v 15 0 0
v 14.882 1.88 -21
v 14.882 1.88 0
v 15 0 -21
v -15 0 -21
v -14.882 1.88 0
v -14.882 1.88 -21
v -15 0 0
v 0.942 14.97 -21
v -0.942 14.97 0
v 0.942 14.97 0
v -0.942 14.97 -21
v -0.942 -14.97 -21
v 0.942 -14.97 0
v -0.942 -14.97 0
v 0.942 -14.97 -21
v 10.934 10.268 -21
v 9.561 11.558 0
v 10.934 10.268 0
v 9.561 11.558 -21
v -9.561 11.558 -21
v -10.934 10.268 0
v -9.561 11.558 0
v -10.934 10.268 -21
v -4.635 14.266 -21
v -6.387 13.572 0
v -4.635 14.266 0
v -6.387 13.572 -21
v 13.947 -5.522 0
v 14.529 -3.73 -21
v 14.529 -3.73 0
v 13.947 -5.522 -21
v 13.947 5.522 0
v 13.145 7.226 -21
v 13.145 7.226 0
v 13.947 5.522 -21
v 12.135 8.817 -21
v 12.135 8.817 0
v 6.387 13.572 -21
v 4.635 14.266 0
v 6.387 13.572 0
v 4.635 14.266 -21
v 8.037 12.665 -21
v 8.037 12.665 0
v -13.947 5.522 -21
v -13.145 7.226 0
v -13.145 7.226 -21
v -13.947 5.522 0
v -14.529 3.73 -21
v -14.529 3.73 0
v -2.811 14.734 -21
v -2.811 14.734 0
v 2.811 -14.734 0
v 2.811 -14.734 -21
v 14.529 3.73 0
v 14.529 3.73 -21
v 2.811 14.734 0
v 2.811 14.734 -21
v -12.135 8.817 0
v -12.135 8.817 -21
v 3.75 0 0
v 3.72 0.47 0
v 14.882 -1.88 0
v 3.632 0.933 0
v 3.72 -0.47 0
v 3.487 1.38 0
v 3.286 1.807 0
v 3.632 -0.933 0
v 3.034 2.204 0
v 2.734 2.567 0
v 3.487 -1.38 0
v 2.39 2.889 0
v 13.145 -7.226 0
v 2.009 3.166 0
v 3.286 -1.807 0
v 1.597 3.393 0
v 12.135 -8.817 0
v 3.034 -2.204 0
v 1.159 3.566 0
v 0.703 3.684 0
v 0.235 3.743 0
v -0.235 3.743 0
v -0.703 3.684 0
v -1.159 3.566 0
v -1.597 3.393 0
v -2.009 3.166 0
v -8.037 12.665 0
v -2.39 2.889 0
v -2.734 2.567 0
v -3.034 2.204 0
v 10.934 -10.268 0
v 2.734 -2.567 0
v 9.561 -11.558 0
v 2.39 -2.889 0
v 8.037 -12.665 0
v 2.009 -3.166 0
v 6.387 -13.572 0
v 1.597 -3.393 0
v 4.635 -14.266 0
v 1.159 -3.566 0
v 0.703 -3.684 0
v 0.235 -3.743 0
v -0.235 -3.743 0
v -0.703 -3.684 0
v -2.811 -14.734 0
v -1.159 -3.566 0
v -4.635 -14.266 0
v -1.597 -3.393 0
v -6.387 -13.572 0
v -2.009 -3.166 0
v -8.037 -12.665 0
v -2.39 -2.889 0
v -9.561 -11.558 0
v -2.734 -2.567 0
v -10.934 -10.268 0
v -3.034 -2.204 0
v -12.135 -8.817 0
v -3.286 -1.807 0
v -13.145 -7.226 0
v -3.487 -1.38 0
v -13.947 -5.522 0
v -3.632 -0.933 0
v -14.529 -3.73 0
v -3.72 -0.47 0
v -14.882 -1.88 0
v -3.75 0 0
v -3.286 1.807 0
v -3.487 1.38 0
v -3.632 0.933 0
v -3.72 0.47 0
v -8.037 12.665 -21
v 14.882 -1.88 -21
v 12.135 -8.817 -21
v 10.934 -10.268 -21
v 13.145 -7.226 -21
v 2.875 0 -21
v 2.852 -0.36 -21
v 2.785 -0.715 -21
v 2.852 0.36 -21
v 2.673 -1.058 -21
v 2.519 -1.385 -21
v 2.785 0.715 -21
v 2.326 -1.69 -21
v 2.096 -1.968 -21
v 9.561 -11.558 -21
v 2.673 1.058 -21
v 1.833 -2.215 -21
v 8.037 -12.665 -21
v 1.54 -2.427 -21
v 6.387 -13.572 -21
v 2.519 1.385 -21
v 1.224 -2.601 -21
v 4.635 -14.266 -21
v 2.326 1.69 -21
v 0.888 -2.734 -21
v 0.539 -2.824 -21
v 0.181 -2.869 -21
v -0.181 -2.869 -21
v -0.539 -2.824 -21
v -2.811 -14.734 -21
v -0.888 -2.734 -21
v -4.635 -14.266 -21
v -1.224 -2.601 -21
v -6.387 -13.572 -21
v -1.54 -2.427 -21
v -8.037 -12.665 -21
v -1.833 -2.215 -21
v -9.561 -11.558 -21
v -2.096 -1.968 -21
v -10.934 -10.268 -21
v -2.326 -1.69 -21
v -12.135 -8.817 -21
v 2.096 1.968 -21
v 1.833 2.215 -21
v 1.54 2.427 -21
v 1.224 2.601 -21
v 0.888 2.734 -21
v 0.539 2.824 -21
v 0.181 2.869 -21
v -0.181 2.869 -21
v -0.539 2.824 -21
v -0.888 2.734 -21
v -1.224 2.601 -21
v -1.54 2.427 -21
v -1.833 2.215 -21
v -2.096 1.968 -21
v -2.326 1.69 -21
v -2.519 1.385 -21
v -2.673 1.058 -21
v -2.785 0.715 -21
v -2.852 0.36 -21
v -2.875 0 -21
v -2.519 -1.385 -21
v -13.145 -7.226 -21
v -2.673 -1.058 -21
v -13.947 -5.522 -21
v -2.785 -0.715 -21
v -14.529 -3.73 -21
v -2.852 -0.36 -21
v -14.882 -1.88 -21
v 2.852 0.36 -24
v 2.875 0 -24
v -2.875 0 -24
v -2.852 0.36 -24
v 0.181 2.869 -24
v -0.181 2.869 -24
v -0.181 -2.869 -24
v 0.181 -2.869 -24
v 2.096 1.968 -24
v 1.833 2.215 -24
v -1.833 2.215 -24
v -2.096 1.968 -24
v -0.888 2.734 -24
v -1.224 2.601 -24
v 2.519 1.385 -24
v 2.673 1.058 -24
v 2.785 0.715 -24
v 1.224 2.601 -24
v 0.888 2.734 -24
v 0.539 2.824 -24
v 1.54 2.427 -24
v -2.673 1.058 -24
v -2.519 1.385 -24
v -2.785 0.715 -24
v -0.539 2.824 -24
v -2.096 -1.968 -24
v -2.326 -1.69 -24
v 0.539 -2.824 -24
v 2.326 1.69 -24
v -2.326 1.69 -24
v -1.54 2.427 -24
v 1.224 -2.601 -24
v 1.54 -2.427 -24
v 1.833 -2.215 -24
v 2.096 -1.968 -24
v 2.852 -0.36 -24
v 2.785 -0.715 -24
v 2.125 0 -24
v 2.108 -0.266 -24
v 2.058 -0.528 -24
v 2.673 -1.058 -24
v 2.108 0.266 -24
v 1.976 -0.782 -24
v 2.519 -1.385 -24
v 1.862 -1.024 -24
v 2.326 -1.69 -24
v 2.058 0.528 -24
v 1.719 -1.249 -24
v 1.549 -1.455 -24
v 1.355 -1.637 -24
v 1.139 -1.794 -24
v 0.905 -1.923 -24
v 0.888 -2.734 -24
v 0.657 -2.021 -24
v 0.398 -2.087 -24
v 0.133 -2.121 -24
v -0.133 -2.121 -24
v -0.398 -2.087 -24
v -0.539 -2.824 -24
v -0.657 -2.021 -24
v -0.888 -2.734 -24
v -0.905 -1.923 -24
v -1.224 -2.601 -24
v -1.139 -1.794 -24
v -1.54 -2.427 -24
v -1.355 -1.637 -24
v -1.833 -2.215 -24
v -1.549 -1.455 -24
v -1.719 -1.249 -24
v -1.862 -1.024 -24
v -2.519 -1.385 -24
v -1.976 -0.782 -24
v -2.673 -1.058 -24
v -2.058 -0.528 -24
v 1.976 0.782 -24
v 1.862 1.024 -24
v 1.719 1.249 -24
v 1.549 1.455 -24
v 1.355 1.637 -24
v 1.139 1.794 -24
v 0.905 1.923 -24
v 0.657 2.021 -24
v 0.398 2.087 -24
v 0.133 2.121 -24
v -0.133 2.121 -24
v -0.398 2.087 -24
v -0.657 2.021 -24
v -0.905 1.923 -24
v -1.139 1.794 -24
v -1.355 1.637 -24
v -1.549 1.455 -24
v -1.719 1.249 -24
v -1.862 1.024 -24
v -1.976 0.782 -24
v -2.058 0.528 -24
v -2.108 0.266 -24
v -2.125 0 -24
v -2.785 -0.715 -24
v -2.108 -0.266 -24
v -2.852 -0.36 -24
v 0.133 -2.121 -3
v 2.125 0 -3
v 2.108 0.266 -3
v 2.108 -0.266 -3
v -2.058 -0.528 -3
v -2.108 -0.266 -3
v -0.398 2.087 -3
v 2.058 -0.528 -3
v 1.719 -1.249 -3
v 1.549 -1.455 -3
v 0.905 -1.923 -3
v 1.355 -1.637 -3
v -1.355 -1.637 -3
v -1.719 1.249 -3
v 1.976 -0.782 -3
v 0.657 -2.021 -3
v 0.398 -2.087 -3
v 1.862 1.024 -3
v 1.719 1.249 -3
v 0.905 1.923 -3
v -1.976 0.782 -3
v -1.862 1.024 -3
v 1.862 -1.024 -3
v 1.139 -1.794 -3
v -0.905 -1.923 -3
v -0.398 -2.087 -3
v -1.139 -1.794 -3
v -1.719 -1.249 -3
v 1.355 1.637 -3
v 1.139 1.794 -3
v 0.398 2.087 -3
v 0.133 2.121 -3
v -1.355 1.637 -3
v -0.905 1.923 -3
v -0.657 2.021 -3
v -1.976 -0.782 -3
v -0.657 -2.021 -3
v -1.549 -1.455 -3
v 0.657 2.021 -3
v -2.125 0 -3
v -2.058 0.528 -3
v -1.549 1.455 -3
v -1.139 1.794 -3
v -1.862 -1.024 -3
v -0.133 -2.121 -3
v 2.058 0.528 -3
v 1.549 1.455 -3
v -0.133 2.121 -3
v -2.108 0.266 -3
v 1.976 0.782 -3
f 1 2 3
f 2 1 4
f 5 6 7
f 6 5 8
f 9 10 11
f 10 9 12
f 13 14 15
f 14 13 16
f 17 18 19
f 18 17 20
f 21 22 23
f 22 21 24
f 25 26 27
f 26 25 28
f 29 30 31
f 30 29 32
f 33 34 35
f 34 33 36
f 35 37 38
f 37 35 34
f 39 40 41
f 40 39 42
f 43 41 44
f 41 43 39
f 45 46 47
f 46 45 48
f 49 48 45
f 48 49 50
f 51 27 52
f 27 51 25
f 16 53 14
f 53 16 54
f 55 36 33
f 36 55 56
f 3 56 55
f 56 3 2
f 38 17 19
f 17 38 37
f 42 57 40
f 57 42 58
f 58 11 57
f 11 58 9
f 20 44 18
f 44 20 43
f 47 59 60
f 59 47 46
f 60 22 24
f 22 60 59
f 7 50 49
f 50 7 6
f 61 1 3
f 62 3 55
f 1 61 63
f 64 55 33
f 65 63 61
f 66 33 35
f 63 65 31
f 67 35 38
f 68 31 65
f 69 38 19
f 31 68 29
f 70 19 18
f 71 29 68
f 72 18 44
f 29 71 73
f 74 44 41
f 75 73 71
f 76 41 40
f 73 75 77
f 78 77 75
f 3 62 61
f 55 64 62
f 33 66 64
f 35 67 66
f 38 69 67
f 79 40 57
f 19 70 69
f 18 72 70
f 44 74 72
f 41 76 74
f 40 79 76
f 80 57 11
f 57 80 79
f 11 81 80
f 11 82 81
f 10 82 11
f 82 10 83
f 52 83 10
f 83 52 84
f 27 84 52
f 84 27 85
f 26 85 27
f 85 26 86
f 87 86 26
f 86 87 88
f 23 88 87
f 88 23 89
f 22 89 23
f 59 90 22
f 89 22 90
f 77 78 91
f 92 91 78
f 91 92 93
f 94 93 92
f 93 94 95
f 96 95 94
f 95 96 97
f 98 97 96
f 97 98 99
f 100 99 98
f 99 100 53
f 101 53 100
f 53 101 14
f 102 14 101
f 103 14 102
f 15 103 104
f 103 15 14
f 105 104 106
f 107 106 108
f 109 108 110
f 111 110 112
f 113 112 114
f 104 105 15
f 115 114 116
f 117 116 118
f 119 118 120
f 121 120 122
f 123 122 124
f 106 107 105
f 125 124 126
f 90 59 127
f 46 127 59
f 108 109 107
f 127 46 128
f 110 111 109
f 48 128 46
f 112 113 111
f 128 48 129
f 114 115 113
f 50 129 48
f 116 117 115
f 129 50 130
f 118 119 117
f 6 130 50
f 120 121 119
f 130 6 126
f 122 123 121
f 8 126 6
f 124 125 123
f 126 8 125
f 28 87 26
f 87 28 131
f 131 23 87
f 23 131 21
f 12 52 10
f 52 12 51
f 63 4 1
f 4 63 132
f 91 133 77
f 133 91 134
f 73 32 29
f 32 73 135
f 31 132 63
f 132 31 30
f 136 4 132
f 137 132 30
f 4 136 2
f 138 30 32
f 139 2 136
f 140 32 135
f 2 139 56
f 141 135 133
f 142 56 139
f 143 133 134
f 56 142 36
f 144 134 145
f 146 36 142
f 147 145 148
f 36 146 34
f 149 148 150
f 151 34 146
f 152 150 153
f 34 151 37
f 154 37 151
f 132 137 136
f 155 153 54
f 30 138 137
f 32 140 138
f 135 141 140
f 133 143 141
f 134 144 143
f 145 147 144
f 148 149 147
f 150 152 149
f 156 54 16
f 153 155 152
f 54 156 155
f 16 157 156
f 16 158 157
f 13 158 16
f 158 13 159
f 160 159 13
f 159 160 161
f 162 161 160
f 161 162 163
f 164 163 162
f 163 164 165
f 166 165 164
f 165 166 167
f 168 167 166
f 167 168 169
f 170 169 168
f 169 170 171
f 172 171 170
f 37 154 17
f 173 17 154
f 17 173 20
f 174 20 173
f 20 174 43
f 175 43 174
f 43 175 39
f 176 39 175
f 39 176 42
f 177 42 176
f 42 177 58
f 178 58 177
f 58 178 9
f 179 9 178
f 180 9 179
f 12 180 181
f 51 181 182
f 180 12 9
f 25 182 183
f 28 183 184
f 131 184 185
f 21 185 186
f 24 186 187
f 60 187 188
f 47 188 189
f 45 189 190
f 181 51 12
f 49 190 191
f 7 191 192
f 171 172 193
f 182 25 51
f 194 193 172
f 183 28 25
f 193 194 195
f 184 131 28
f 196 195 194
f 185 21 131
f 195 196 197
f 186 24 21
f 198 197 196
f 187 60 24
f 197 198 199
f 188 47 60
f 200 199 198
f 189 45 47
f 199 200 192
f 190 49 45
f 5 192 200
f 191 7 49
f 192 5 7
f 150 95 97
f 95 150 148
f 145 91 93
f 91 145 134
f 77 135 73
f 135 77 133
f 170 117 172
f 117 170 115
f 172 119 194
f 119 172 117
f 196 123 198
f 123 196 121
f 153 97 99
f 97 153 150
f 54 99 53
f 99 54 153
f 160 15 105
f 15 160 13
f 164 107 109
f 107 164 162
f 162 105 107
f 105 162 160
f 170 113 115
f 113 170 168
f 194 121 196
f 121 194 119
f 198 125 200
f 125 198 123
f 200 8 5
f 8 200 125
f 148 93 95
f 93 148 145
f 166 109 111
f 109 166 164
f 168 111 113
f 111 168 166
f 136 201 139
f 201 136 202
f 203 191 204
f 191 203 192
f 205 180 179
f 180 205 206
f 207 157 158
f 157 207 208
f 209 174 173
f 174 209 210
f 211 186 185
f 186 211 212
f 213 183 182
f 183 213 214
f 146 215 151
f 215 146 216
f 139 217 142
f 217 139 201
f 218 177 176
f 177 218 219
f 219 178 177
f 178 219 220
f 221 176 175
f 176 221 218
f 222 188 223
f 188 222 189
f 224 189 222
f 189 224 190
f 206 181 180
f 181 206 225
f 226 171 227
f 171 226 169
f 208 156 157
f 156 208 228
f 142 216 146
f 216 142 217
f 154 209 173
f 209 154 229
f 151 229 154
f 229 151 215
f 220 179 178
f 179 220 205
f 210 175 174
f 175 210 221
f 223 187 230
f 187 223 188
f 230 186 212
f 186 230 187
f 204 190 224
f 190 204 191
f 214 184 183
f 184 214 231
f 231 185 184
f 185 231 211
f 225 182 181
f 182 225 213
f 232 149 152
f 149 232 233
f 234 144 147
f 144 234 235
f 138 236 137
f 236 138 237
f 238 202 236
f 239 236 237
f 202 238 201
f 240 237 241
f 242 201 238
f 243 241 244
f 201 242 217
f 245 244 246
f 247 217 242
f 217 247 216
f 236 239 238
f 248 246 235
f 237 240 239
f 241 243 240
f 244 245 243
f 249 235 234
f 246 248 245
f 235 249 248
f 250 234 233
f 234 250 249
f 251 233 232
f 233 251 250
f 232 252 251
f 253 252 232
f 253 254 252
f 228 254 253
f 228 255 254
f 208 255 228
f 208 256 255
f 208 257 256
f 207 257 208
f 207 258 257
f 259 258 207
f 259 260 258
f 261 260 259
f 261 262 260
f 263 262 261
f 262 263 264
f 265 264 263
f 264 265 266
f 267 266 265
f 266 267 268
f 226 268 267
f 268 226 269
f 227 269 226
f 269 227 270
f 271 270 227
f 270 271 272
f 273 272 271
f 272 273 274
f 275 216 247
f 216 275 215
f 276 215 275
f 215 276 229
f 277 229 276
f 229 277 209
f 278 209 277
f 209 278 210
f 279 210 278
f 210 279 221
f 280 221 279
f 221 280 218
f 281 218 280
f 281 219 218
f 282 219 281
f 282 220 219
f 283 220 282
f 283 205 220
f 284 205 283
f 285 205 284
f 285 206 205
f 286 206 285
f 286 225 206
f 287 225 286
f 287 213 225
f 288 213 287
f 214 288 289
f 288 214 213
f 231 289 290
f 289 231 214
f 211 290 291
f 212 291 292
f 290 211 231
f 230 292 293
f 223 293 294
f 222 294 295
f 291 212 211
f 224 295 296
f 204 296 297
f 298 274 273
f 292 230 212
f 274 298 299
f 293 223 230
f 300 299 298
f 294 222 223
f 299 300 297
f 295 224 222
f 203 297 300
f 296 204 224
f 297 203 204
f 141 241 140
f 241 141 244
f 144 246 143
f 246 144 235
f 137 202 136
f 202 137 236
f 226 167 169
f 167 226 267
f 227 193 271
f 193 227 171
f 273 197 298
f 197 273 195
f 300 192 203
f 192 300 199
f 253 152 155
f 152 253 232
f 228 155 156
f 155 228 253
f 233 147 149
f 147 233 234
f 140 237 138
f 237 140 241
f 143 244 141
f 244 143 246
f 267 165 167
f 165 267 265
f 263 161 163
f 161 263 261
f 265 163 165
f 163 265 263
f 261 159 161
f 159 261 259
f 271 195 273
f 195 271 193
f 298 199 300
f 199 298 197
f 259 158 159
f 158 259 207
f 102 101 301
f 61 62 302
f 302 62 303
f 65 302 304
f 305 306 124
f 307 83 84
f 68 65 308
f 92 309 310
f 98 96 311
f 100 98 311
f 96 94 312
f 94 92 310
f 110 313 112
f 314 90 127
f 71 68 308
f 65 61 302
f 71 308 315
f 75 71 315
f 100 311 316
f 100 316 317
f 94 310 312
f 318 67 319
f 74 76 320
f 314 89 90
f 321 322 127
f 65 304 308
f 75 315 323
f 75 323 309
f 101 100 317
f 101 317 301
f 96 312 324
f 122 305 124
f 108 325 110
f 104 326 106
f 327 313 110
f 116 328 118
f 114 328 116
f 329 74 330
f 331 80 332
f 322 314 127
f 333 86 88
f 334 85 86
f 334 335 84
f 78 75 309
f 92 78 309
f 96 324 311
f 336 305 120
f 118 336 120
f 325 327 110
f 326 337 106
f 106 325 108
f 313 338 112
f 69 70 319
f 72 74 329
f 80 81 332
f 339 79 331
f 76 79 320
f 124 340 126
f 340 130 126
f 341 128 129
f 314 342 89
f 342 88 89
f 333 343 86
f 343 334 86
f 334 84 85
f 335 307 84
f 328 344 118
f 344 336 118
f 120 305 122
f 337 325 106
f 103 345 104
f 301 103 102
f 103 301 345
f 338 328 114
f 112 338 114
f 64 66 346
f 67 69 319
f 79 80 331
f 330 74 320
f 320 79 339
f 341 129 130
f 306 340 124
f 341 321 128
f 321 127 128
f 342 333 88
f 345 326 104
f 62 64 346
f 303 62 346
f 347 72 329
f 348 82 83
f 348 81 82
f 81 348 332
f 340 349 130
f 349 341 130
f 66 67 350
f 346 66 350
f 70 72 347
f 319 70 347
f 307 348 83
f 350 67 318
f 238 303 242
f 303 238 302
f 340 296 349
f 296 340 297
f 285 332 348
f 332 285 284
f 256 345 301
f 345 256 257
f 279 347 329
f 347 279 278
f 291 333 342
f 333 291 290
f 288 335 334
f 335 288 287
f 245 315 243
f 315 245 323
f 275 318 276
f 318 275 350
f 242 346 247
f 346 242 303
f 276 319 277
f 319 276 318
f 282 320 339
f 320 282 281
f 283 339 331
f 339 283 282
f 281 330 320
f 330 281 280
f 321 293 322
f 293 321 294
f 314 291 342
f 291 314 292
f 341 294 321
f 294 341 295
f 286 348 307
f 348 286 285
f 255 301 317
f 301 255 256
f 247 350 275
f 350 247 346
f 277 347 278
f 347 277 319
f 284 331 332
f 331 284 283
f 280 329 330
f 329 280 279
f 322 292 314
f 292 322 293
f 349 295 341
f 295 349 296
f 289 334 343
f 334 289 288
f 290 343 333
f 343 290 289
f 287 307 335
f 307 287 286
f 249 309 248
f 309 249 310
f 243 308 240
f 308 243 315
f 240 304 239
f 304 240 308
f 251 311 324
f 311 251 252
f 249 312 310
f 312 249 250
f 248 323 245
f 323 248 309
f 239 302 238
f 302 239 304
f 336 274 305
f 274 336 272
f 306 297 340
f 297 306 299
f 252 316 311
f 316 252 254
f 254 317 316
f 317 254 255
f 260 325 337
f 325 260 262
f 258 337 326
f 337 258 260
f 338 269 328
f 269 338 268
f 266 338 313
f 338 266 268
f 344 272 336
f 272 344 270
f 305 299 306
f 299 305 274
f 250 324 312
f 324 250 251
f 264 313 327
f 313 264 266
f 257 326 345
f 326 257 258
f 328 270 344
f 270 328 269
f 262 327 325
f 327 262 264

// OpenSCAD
$fn = 50;


difference() {
	union() {
		translate(v = [0, 0, -21.0000000000]) {
			cylinder(h = 21, r = 15.0000000000);
		}
		#translate(v = [0, 0, -24.0000000000]) {
			cylinder(h = 24, r = 2.8750000000);
		}
	}
	union() {
		translate(v = [0, 0, 0]) {
			rotate(a = [0, 0, 0]) {
				difference() {
					union() {
						translate(v = [0, 0, -24.0000000000]) {
							cylinder(h = 24, r = 2.0000000000);
						}
						translate(v = [0, 0, -3]) {
							cylinder(h = 3, r1 = 2.1250000000, r2 = 3.7500000000);
						}
						translate(v = [0, 0, -24.0000000000]) {
							cylinder(h = 24, r = 2.1250000000);
						}
						translate(v = [0, 0, -24.0000000000]) {
							cylinder(h = 24, r = 2.0000000000);
						}
					}
					union();
				}
			}
		}
	}
}
